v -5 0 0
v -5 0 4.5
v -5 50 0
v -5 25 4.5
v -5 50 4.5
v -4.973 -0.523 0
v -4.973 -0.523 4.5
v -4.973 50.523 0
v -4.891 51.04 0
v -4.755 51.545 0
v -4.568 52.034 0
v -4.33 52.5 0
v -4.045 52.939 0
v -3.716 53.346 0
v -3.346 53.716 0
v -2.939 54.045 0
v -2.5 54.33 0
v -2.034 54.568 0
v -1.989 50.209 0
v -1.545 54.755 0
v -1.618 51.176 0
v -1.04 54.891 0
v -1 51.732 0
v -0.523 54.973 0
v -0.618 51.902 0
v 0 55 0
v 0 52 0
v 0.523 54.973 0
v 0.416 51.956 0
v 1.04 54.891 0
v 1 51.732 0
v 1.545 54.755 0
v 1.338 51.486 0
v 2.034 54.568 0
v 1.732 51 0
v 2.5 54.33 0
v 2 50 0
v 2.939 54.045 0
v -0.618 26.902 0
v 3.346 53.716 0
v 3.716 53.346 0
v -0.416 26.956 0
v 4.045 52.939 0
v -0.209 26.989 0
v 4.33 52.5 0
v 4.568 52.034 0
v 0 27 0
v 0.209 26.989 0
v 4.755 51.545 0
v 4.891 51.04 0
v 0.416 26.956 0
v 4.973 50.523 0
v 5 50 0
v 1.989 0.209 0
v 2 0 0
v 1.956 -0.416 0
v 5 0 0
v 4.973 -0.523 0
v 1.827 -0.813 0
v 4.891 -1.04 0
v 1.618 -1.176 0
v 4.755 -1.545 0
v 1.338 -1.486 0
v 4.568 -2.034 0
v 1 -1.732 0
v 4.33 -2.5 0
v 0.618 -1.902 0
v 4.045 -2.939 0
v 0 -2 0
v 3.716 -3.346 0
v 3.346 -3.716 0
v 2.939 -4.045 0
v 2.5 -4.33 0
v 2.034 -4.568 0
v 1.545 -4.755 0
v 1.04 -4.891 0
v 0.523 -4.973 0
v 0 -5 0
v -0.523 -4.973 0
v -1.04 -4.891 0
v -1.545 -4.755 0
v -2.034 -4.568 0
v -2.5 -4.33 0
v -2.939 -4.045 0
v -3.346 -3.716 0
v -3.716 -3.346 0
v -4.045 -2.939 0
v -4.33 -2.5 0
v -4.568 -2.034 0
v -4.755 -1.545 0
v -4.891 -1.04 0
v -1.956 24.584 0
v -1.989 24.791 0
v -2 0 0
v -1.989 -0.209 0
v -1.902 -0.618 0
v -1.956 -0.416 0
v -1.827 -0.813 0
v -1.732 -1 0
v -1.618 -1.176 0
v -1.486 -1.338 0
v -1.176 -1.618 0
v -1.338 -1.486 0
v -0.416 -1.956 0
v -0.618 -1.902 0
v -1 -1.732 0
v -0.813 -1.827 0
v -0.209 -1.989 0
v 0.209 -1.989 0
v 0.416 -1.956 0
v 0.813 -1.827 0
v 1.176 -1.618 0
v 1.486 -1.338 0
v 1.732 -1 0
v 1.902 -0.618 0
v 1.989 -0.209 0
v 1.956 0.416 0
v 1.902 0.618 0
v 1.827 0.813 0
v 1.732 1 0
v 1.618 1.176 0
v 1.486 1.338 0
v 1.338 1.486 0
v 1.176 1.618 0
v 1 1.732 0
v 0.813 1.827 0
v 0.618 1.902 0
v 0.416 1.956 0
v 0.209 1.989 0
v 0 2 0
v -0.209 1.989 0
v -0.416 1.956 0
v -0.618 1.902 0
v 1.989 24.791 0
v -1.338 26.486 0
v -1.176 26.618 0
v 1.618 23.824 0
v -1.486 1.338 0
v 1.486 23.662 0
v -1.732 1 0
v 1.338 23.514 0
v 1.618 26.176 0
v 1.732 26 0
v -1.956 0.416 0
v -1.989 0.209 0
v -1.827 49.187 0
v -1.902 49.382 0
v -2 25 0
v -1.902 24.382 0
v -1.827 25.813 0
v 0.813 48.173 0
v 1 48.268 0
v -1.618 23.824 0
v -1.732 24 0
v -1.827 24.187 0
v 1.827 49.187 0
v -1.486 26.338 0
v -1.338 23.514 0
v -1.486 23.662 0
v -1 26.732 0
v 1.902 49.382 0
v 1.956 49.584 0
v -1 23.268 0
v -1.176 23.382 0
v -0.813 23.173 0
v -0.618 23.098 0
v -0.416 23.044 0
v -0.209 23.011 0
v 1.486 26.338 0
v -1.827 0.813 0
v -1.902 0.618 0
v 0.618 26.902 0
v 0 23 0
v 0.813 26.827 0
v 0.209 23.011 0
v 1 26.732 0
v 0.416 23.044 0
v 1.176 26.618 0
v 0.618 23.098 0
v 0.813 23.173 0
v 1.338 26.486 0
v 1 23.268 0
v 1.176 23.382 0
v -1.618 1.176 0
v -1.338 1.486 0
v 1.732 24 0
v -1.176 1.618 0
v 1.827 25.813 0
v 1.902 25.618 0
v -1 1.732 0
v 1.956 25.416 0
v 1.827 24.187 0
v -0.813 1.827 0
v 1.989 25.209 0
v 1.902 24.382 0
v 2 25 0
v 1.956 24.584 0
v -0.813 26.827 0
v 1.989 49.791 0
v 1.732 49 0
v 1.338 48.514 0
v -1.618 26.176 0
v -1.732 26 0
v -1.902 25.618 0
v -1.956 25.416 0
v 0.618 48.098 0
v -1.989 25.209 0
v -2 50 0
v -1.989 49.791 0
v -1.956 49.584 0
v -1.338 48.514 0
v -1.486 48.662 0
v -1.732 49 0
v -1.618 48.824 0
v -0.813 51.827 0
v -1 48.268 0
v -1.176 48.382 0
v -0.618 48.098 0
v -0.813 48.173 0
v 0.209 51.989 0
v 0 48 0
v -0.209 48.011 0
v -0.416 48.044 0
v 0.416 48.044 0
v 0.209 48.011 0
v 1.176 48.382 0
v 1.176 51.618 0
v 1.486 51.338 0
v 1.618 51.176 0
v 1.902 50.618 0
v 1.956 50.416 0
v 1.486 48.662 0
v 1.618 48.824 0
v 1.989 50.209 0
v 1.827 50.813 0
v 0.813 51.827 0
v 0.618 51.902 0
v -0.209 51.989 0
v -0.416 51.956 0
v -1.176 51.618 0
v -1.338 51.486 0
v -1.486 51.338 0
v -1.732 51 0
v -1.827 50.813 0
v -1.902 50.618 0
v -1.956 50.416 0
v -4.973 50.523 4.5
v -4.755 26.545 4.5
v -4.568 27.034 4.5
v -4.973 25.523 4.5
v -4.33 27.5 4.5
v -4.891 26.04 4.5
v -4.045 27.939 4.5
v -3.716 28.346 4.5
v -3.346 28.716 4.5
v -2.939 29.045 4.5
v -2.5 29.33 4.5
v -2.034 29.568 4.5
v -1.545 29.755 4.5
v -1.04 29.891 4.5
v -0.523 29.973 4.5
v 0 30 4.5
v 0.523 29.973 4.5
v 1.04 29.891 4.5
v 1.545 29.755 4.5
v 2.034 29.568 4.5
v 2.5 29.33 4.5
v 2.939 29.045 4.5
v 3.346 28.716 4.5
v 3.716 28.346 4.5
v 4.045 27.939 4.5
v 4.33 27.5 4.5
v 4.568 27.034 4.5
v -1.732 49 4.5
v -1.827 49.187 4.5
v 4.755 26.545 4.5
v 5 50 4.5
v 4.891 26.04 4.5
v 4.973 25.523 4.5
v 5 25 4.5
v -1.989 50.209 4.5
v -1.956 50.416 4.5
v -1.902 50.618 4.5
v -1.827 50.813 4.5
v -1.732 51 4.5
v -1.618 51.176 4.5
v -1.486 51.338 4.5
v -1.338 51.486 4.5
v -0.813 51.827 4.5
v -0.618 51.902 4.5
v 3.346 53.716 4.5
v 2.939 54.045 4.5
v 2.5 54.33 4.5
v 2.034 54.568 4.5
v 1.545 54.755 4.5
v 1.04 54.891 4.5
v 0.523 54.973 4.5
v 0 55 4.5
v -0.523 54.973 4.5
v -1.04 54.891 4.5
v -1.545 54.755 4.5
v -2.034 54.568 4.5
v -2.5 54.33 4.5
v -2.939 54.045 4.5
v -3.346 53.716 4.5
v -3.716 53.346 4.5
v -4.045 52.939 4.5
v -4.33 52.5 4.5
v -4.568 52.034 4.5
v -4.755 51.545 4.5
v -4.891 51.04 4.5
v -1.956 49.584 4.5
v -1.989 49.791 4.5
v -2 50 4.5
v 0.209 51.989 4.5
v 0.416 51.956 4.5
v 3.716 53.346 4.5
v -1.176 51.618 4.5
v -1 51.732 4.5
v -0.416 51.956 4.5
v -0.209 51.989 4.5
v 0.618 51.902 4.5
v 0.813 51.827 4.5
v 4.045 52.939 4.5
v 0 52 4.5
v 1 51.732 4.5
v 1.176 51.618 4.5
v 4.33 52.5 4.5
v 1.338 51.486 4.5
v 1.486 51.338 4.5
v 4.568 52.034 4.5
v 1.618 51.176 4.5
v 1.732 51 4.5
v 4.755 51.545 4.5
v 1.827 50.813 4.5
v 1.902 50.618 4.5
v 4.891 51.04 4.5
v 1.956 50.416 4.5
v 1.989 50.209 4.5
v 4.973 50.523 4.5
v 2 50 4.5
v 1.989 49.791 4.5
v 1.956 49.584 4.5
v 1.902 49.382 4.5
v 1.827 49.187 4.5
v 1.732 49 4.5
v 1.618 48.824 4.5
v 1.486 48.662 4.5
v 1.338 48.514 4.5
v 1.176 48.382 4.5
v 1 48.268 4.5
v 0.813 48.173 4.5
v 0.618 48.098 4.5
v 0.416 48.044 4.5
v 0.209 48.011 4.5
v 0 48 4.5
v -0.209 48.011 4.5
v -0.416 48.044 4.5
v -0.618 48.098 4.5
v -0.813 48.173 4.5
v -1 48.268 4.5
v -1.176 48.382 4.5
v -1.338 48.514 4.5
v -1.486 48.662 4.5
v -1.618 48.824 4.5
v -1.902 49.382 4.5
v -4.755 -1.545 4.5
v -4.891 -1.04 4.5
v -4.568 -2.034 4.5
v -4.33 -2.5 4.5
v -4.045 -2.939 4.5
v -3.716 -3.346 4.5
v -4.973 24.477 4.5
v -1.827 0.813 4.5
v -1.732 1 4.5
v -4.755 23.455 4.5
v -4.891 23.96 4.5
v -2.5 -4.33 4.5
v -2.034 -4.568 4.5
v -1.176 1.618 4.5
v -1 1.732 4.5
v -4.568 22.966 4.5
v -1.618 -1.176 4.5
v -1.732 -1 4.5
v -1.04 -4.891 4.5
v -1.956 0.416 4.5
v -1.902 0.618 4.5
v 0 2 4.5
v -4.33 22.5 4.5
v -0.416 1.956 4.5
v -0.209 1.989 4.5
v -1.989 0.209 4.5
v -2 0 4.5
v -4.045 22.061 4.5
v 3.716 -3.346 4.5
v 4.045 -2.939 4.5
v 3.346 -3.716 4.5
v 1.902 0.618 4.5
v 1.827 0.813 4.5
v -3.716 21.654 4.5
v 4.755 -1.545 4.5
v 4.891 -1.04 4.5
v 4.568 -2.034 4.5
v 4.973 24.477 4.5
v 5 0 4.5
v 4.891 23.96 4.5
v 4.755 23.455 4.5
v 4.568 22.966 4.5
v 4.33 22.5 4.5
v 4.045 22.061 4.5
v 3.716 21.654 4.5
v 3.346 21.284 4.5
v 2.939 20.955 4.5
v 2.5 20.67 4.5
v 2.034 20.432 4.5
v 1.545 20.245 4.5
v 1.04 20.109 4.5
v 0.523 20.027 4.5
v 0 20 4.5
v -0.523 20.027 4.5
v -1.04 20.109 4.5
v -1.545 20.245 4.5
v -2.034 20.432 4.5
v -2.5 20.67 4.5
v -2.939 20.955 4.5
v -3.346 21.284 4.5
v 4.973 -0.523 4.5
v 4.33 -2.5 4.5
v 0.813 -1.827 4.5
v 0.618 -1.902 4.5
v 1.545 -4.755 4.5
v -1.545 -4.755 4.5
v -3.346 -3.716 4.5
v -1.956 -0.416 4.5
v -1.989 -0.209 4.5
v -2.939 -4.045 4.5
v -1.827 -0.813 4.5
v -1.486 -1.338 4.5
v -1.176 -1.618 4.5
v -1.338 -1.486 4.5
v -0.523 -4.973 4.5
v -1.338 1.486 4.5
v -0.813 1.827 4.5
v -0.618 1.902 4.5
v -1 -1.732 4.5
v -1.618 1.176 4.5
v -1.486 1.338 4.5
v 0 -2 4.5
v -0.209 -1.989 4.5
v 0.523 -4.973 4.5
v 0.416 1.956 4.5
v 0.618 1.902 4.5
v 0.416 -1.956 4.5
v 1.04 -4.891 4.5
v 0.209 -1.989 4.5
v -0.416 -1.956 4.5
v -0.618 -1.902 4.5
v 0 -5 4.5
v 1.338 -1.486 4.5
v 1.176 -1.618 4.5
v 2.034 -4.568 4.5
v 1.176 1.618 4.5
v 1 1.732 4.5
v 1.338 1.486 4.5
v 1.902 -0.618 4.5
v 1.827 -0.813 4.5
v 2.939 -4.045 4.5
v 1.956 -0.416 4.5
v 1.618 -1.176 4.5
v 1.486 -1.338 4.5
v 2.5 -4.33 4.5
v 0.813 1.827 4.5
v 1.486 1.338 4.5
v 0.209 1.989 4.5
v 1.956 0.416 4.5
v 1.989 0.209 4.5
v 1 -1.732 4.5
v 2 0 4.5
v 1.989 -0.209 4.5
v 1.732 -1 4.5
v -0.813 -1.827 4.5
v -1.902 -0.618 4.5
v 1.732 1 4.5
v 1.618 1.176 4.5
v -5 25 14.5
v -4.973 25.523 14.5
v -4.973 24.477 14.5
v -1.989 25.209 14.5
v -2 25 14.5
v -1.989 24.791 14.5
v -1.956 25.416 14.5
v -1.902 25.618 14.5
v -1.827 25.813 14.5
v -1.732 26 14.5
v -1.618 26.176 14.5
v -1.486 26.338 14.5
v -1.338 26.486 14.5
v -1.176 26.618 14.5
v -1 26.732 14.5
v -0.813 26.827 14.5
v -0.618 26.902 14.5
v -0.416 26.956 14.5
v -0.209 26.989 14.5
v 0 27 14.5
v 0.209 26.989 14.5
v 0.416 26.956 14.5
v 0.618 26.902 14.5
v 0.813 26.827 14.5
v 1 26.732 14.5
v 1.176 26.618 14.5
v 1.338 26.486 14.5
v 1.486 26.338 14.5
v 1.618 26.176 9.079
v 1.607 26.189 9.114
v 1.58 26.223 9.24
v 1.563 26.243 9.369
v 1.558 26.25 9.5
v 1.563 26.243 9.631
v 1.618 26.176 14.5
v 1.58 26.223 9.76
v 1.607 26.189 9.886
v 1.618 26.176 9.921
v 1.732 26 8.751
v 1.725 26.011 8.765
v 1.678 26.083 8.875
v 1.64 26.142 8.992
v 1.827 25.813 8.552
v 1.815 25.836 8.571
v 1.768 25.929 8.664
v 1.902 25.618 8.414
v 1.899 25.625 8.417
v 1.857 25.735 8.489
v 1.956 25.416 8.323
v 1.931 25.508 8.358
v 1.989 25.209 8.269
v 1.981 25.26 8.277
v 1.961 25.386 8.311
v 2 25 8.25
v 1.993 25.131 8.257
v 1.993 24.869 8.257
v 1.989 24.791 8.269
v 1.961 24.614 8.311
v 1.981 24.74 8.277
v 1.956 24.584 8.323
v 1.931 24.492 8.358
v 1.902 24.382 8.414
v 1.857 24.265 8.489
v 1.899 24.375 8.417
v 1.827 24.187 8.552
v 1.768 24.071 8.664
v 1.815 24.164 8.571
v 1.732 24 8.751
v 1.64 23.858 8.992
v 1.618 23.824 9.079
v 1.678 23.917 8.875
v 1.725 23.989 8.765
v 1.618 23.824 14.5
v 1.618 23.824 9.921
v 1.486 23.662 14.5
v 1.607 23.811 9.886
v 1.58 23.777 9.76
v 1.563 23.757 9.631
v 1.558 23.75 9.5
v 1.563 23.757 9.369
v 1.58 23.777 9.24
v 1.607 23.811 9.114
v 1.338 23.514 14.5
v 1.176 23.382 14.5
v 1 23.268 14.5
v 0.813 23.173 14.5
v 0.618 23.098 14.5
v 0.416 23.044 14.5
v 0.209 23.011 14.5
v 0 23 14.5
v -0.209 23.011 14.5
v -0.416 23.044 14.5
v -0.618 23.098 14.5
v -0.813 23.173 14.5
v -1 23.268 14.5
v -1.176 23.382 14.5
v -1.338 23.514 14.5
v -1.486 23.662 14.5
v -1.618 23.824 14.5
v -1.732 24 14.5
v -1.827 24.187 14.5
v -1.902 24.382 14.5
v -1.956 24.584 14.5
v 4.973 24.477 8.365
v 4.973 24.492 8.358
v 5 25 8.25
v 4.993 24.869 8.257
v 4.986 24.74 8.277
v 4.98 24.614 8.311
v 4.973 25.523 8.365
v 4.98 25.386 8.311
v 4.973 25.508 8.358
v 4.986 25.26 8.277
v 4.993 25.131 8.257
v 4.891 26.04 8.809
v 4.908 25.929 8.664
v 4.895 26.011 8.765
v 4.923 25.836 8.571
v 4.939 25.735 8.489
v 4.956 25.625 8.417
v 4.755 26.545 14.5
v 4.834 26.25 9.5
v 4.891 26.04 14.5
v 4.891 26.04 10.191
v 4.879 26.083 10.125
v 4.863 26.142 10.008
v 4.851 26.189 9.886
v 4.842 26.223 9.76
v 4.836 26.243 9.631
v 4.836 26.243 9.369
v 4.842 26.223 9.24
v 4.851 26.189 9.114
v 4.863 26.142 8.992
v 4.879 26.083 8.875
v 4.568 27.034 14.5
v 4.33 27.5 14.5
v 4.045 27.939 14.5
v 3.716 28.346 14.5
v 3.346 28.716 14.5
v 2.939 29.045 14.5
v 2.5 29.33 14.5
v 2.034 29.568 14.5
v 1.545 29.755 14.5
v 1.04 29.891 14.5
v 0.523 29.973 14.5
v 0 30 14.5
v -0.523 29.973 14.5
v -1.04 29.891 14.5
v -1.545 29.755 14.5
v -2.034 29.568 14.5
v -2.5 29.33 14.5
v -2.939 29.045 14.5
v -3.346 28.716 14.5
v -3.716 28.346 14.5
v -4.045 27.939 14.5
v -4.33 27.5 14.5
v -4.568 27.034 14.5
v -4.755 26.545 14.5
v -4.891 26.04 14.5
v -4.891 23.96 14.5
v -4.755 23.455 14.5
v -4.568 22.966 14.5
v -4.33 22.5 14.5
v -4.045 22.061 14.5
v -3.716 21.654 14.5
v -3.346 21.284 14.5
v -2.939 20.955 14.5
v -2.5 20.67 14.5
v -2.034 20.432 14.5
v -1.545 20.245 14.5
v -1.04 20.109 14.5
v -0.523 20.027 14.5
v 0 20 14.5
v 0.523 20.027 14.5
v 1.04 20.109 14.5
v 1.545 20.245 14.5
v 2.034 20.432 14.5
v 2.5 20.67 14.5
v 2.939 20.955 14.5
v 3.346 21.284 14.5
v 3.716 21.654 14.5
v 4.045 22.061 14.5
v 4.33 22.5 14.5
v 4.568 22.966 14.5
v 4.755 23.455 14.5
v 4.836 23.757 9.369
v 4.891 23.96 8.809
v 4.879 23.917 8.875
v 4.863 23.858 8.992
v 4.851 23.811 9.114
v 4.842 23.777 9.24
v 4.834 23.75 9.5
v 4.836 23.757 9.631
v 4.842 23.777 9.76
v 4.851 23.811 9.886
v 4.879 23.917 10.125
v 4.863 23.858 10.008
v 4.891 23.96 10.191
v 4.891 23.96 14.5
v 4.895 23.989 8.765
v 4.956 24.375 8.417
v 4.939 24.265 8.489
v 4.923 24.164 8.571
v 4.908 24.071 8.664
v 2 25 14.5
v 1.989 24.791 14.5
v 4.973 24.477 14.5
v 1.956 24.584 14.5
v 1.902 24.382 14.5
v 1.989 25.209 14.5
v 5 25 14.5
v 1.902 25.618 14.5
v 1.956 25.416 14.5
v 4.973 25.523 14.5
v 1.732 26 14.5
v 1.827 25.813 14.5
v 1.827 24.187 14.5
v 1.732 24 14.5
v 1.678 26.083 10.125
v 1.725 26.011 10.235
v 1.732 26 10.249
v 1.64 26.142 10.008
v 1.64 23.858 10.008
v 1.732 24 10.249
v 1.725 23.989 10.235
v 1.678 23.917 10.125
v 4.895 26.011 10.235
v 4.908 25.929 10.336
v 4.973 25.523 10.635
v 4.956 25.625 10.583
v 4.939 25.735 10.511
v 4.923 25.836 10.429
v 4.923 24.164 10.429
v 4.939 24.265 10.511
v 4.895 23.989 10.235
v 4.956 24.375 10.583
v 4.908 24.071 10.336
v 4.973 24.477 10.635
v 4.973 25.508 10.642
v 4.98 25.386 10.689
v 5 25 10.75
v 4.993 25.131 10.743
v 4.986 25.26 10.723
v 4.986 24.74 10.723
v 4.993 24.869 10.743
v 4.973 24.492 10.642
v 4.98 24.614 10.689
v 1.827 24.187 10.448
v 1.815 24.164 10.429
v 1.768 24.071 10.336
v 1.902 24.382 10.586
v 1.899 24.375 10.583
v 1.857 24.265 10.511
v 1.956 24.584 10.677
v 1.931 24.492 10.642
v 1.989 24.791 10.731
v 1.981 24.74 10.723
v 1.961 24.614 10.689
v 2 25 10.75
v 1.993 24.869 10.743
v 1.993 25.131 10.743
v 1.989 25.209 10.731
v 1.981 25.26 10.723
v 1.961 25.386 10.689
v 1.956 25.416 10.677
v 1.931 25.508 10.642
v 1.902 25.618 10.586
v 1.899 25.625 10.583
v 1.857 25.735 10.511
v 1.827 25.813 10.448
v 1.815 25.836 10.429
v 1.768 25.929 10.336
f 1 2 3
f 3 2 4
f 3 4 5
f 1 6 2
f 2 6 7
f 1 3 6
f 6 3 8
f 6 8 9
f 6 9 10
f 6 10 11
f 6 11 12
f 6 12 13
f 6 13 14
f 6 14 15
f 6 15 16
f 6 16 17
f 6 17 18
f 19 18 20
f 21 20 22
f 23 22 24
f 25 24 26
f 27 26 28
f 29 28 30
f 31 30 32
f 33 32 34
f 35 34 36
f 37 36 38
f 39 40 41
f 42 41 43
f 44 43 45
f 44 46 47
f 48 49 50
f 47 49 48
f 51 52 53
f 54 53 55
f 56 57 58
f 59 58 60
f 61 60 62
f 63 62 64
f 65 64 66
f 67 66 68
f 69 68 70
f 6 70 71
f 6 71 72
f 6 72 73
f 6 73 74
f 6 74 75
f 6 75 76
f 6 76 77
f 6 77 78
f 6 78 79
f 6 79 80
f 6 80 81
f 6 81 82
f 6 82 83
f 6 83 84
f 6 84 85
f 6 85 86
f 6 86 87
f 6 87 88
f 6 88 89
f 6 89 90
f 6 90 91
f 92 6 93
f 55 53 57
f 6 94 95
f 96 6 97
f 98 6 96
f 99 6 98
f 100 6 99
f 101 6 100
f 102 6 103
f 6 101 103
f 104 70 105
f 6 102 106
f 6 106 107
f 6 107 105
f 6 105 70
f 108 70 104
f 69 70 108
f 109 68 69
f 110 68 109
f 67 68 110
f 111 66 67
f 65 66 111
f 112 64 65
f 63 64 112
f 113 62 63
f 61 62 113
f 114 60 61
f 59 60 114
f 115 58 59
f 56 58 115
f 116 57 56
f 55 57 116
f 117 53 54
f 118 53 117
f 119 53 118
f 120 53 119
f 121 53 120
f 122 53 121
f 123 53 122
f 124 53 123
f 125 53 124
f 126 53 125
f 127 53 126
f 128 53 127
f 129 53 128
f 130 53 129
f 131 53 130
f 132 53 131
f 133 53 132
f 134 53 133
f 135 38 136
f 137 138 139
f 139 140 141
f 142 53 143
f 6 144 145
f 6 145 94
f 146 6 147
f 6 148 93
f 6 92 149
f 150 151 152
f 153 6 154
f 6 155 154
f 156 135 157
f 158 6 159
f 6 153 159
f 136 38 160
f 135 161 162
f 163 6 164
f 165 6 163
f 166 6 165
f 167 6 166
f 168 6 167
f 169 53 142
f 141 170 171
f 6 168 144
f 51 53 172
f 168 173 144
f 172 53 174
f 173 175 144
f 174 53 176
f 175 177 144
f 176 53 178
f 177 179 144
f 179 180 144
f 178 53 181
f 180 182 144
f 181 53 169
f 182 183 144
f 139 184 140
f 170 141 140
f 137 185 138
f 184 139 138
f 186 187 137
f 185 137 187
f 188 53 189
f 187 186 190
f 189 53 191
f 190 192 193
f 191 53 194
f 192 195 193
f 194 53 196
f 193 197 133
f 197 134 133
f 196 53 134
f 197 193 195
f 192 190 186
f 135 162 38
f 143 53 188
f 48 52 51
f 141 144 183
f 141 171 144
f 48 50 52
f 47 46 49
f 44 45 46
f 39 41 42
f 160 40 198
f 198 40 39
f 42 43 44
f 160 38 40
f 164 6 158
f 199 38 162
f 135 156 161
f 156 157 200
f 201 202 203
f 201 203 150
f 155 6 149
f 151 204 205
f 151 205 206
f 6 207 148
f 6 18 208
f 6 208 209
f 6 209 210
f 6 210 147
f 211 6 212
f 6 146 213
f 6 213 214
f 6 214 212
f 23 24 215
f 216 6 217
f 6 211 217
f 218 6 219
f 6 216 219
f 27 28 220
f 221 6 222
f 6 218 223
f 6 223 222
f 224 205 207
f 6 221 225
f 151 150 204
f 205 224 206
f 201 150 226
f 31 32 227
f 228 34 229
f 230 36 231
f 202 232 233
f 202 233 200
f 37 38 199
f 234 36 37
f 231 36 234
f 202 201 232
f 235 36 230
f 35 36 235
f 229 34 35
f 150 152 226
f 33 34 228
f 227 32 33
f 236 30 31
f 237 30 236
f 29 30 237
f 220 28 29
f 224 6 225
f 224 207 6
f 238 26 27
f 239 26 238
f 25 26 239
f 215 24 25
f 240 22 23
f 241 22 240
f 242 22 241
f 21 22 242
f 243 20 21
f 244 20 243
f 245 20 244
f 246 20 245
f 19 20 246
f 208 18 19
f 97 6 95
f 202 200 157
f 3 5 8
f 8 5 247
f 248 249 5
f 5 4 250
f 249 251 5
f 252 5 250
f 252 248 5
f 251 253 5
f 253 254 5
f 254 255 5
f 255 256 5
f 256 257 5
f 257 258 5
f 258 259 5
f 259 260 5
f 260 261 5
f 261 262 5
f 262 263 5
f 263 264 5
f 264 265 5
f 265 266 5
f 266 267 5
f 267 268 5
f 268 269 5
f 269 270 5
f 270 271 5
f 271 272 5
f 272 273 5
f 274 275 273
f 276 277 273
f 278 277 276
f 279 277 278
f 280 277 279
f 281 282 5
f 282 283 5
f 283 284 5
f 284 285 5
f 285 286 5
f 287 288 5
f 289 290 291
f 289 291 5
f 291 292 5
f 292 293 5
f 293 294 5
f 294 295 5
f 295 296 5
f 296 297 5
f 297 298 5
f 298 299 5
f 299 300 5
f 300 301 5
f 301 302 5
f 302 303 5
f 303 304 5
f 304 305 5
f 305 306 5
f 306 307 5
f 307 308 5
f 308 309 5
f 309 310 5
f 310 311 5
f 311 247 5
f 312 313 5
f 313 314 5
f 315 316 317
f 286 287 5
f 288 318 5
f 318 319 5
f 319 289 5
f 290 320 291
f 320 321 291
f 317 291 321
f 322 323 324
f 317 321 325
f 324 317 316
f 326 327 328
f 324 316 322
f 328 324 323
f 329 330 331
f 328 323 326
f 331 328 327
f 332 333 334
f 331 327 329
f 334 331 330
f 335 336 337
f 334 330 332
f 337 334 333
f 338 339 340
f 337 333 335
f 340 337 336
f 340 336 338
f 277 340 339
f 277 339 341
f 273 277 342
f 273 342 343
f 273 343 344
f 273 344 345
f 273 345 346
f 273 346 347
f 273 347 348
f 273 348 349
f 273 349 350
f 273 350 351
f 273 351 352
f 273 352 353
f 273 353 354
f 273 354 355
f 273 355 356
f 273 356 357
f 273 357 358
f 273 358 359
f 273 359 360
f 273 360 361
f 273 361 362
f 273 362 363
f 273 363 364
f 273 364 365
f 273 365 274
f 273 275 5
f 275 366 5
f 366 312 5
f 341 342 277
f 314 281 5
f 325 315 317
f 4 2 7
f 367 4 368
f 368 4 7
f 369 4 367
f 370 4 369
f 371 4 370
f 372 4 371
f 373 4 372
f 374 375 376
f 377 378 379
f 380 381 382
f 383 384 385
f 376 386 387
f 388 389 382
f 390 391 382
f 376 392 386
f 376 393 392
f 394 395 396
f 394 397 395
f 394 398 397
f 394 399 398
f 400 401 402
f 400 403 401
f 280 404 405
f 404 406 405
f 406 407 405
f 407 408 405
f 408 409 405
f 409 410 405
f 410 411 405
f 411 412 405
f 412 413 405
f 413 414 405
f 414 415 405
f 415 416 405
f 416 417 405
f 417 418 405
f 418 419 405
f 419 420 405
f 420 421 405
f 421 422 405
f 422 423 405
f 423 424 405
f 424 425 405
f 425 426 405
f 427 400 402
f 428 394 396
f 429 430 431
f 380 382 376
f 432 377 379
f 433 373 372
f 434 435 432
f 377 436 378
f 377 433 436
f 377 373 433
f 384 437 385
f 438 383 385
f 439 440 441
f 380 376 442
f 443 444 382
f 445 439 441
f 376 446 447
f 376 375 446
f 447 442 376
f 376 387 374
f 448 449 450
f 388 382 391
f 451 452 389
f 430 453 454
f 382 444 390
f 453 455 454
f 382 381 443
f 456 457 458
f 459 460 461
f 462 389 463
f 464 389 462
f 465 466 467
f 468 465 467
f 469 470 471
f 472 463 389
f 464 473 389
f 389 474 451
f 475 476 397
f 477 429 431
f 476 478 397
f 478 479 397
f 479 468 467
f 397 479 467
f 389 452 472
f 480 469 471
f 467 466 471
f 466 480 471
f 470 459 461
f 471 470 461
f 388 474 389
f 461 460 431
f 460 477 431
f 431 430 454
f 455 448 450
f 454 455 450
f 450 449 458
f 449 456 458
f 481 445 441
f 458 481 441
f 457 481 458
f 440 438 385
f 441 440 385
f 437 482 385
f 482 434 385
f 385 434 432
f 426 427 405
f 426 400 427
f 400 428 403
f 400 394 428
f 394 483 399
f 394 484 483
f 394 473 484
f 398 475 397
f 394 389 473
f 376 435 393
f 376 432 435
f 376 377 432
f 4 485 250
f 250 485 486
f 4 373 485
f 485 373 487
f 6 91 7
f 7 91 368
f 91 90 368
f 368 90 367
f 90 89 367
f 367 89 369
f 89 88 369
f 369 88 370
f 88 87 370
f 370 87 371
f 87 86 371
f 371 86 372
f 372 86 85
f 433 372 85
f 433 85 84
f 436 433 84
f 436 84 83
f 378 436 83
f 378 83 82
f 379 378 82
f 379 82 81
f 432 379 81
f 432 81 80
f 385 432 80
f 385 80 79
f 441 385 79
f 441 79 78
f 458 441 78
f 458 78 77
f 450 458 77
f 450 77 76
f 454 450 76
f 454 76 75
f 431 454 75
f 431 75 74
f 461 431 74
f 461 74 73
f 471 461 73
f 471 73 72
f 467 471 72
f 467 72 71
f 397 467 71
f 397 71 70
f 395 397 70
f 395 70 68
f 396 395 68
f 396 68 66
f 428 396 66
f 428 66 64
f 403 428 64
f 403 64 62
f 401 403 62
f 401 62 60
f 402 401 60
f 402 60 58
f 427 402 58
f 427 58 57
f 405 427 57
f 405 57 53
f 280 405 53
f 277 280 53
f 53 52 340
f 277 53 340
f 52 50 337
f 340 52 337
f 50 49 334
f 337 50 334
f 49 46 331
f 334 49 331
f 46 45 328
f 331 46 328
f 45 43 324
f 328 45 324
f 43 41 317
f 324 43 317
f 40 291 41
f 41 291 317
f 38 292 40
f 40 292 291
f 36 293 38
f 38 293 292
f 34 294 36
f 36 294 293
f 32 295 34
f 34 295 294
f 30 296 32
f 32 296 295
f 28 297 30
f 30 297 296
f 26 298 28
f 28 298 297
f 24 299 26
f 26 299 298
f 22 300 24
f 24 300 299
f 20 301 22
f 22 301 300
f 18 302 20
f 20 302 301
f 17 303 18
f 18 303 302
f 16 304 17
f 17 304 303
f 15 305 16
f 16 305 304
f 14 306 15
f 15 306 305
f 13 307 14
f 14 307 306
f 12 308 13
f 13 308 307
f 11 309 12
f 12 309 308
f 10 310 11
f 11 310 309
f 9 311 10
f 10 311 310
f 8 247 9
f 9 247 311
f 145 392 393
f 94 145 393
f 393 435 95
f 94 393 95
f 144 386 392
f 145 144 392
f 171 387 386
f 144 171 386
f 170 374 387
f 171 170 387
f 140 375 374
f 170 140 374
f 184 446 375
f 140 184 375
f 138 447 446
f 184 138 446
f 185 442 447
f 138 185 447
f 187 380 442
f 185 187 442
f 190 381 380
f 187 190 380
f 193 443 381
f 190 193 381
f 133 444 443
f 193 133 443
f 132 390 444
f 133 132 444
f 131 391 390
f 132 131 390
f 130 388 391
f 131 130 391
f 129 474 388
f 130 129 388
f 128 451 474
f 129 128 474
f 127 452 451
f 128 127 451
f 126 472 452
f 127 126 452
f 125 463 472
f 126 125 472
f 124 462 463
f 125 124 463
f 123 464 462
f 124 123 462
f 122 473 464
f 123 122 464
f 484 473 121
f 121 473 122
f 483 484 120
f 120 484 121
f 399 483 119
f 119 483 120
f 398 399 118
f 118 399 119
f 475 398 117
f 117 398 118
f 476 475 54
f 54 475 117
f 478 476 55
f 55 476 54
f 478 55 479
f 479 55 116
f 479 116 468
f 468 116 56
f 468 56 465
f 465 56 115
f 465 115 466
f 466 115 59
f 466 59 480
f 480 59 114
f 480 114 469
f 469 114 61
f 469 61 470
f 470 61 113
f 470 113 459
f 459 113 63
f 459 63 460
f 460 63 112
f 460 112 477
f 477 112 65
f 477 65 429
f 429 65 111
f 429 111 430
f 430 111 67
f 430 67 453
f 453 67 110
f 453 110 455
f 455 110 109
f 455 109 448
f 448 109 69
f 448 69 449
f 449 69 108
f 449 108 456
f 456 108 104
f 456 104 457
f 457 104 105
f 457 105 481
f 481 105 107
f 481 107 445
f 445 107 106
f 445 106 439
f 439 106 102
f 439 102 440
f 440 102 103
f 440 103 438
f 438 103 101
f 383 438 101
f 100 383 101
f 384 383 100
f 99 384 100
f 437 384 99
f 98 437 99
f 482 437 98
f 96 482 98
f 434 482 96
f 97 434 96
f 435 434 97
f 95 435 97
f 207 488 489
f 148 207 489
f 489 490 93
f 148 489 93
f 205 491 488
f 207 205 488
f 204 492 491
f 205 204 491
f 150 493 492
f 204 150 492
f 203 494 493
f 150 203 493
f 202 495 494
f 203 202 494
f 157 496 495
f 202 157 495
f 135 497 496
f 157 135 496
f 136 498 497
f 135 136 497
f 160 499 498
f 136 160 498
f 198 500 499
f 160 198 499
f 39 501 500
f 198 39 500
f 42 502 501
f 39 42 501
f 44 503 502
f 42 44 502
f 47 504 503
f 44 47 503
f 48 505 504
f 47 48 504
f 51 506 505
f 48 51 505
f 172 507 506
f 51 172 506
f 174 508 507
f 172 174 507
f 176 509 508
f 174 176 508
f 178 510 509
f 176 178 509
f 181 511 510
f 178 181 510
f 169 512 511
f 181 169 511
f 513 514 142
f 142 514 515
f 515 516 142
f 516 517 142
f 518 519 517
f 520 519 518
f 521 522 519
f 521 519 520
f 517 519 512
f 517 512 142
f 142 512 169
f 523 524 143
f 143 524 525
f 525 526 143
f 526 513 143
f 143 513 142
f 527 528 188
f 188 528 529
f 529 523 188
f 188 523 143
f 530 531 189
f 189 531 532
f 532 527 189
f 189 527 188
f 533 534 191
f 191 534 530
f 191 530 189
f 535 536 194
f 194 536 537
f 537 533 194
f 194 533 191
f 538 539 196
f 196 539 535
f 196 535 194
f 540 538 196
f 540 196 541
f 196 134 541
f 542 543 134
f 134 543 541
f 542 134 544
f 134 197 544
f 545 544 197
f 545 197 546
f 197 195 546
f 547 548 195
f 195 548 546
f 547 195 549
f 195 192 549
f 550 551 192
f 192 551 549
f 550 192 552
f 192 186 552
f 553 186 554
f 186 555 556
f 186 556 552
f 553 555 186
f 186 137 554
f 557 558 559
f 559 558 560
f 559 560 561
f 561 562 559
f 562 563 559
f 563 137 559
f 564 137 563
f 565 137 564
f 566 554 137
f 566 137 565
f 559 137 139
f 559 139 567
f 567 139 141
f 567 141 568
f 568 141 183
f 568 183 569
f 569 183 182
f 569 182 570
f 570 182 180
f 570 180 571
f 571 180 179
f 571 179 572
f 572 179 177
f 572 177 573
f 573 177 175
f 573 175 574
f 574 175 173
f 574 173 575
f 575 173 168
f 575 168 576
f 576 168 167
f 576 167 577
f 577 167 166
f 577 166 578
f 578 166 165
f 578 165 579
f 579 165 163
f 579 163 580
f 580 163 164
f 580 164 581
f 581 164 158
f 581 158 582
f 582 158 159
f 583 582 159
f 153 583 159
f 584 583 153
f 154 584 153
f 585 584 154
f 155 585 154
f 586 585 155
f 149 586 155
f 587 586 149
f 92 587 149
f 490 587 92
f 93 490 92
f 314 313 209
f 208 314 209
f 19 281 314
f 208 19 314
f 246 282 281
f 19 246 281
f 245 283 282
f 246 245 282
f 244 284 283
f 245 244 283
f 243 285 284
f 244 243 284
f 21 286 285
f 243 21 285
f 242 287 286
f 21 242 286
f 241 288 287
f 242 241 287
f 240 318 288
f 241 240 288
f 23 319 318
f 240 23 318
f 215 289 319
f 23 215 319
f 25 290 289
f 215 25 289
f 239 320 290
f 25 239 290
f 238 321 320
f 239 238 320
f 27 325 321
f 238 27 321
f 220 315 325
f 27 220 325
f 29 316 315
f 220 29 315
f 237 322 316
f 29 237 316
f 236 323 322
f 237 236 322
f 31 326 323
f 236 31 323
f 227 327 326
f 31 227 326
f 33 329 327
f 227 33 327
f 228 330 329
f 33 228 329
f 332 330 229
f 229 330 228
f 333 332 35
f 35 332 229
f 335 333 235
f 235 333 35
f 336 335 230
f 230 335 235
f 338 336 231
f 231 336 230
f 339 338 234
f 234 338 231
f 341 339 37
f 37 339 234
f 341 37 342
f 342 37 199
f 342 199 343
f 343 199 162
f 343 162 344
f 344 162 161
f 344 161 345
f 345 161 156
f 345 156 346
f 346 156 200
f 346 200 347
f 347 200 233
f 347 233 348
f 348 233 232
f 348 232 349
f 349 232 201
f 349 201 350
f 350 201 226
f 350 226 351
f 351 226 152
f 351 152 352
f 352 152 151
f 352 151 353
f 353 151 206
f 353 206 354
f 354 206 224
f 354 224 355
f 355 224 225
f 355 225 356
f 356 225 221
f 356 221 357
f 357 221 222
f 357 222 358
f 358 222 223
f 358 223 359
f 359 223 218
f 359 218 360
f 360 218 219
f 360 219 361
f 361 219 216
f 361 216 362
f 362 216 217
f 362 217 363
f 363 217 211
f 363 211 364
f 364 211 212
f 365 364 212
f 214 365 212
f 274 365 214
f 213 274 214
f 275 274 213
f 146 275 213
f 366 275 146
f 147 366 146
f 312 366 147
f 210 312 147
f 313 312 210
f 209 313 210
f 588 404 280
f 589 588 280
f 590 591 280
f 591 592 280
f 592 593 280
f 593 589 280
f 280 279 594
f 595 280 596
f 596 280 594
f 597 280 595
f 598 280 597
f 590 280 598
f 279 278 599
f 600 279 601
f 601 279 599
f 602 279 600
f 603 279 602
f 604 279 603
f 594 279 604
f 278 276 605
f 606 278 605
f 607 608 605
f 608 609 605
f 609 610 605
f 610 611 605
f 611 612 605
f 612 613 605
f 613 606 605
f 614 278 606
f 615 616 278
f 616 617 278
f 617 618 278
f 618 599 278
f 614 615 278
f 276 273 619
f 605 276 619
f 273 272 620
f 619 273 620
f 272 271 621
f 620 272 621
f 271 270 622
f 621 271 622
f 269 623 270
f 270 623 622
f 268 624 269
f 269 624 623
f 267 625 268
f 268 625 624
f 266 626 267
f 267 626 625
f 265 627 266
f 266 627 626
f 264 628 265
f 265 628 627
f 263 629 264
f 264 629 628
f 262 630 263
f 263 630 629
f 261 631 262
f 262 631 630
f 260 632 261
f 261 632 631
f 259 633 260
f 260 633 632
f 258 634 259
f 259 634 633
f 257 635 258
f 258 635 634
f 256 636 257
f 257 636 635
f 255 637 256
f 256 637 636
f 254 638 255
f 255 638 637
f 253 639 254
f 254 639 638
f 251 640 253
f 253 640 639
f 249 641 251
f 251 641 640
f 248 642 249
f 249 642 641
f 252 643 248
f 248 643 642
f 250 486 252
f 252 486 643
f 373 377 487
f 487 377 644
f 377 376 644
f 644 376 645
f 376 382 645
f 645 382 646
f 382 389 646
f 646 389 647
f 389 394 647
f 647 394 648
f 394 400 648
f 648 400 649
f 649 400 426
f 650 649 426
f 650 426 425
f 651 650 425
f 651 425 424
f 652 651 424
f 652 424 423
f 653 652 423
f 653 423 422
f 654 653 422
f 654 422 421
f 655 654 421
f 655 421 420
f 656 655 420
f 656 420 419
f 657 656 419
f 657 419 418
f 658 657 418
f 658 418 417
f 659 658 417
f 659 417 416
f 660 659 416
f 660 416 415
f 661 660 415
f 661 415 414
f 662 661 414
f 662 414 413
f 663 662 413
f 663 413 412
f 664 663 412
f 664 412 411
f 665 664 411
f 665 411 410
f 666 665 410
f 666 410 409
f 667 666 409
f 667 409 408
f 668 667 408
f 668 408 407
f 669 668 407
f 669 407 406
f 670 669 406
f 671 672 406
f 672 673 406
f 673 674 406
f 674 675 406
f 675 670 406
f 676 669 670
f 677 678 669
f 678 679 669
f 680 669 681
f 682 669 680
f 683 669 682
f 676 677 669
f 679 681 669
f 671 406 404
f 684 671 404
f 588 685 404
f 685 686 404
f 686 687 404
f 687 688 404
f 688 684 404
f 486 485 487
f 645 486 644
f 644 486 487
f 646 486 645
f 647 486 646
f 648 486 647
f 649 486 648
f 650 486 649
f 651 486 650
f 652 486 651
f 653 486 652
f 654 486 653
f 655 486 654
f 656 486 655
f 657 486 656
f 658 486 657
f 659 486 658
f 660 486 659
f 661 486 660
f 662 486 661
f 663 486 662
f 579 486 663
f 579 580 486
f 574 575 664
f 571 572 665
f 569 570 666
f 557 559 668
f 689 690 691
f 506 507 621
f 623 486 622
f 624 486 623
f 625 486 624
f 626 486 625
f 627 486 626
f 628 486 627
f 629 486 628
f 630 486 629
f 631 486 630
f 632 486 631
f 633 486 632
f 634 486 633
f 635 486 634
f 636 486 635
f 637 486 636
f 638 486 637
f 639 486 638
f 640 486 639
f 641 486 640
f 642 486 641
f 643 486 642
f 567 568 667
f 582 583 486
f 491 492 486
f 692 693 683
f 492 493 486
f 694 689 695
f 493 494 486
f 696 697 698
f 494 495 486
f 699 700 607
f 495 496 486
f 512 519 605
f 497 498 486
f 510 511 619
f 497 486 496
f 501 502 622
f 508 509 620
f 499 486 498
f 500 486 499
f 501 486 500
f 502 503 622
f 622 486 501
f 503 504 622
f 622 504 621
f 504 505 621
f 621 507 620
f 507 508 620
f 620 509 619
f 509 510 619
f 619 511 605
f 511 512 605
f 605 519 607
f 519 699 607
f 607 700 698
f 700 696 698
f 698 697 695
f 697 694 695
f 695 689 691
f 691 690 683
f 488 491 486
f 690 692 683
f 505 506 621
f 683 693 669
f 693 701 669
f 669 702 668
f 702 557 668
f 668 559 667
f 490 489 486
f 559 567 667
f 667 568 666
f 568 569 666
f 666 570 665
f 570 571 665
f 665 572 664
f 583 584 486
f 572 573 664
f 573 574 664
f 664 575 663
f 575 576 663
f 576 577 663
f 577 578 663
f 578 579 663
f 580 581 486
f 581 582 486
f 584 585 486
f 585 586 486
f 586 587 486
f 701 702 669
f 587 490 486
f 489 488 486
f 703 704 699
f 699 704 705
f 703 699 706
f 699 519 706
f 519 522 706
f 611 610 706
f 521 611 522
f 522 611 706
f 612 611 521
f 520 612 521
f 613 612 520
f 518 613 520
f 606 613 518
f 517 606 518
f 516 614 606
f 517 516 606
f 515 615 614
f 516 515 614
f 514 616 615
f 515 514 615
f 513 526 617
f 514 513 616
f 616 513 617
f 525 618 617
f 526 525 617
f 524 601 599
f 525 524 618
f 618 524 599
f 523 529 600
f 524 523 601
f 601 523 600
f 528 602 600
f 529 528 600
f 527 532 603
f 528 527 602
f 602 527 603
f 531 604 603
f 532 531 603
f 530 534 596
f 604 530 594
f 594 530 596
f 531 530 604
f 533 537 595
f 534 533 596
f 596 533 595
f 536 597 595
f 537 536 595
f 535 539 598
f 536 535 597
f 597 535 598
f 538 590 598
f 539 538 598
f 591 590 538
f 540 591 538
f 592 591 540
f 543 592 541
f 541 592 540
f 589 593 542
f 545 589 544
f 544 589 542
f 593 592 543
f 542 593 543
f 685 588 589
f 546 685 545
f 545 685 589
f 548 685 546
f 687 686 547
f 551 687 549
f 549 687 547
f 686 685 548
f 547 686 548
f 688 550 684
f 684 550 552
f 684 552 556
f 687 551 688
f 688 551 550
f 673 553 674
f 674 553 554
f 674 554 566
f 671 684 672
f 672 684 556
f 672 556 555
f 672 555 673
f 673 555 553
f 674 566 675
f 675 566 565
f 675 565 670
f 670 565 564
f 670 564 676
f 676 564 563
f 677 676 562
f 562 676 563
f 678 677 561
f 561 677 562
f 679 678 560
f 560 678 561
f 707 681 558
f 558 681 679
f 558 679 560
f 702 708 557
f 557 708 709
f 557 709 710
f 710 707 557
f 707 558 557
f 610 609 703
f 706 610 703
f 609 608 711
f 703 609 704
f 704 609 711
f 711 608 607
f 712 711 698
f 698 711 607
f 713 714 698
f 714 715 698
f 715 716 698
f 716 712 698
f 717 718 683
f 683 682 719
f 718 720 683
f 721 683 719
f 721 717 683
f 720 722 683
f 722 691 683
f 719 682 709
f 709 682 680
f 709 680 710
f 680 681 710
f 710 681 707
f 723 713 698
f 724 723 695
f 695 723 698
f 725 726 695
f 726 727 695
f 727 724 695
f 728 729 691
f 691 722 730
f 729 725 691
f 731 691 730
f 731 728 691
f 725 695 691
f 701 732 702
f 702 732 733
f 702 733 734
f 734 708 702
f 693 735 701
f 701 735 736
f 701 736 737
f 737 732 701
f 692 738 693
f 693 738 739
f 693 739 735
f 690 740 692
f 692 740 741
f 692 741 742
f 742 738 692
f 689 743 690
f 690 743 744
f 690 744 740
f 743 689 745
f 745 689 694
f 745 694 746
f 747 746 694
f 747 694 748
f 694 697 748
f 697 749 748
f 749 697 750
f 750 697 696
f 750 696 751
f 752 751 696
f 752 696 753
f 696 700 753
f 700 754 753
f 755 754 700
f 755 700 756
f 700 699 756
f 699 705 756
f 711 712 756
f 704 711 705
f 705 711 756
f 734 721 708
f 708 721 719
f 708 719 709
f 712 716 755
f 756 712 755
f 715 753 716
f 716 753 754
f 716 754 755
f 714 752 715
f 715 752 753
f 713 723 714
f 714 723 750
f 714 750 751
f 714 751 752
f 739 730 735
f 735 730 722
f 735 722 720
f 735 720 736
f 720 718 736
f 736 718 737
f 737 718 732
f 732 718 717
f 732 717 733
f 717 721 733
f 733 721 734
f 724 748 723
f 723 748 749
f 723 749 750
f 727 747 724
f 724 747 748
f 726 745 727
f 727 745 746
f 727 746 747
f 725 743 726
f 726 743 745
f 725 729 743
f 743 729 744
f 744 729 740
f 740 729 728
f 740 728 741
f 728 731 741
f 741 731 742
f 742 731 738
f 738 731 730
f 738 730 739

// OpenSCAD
// file: ../config.scad
// This is the config for an M8 Mendel sized printer.

//Constants (These are used throughout the whole printer)
frameroddia = 8.5; //the frame rod diameter
smoothroddia = 8.5; //the smooth rod diameter
bushingod = 16; //The prusabushing OD, you can change this to 15 to use LM8UU linear bearings 
bushingheight = 11;
tapsize = 7; //The size of the hole before tapping. 7mm seems to work well.

nemasize = 1.7; //Nema Size (in imperial)
motorcenter = 23; //center hole size for the motor. If your motor center flange is smaller you can beef up parts this way. 
motorshaftdia = 5; // Motor shaft diameter
motorcenterwall = 5;
motorbody = 43;

pulleypitch = 5;
pulleyteeth = 8;
pulleydia = 12; // this will be replaced by the above soon

/* The Mixtape Mendel uses two types of fasteners. One is the "primary" type, which is the larger type that builds the structure,
 which was profiled above as "frameroddia, etc..". In the case of the Mendel, it is M8 threaded rod (Huxley, M6). It also uses "Secondary" hardware. This is a smaller screw used to retain tool heads, attach motors and lock pulleys on shafts. In the case of Mendel this is M3 or M4. M3 is preferred as it is cheaper. Tapping is quite the challenge though. 
*/
nutheight = 7; //Primary
nutdia = 14.8; //Primary
secscrewdia = 4; //secondary 
secscrewtap = 2.5; // secondary

beltthick = 2; //Thickness of the timing belt
beltwidth = 7; // Belt width, used for the y bed clamps so can be a little bugger than actual

mdfthick = 6; //thickness of MDF (You can use other wood, acrylic, lexan, etc)

bearingid = 8; // 608
bearingod = 22; // 608
bearinginnerrace = 12; // the amount of the inner race diameter exposed

tapping = true; //turn tapping on/off, not implemented yet. (Version 0.3 might implement this) Version 0.2 has tapping by default right now
layerheight = 0.32; //skeinforge/slicer layer height, used for the idler wasers right now. 

//Beef/tab/wall
motortabwall = 2.5;

//Frame Vertex
vertexwall = 3;
triangle = 60; // the angle the bottom vertexes have relative to horizontal

//Y Motor Mount
ymountthick = 9;
ywallmulti = 2; //the wall thickness multiplier for the bits that interface with the frame rod

//Y Belt Clamps
clampholewall = 3;
	//(bushingod-pulleydia)/2

//Bar Clamps
barclampwall = 4;

//Top Piece
toppiecethick = 8;
toprodwall = 4;
toprodspacing = 72;
siderodwall = 4;

// X End Pieces
xrodspacing = 50; //rod spacing center to center
nutwall = 3; //wall thickness around nut and bushing
towergap= 10; // 0.75 diameter wrap should be ok i think. Make a flag for full wrap and no square for bushings/linear bearings maybe?
//Motor
motorinterface = 6; //thickness of the motor mount (6 works well, need to decouple from top piece)

//X Carriage 
carriagewidth = 50;
bushingwall = 3;
backwall = 5;
tooldia = 17;
platformthick = 7;
platformextension = 40; 
clampthick = 4; //The two pieces that clamp around the belt

//Z Coupler
couplerwall = 4;
couplerheight = 34; // Make this double 3/4 your shaft length
 
//Extruder (Plastic Pusher)
extruderthick = 5;
bowdencabledia = 4;
bowdenwall = 3;
idlerwall = 2;
pinchwheeldia = 8;

//Mendel Bowden Mount
mountspacing = 50;

//Utility Clamp 
utilityclampwall = 3;

//Groove Mount
	//Default is pretty good for MakerGear insulators
groovedia = 12;
grooveheight = 4.5;

//pen holder 
penwall = 3 ;
shaftheight = 30;
// main file
/*
  Mixtape Mendel - A Fully Parametric RepRap
    Copyright (C) 2011  Steve Kelly

    This program is free software: you can redistribute it and/or modify
    it under the terms of the GNU General Public License as published by
    the Free Software Foundation, either version 3 of the License, or
    (at your option) any later version.

    This program is distributed in the hope that it will be useful,
    but WITHOUT ANY WARRANTY; without even the implied warranty of
    MERCHANTABILITY or FITNESS FOR A PARTICULAR PURPOSE.  See the
    GNU General Public License for more details.

    You should have received a copy of the GNU General Public License
    along with this program.  If not, see <http://www.gnu.org/licenses/>.
*/

include <../config.scad>;
$fn = 60;

difference(){
union(){
translate([0,mountspacing/2,0])cylinder(r=bowdencabledia/2+bowdenwall, h = grooveheight+secscrewdia+bowdenwall*2);
translate([0,0,0])cylinder(r=secscrewdia/2 + penwall,h=grooveheight);
translate([0,mountspacing,0])cylinder(r=secscrewdia/2 + penwall,h=grooveheight);
translate([-secscrewdia/2-penwall,0,0])cube([secscrewdia+penwall*2,mountspacing,grooveheight]);

}
translate([0,mountspacing/2,0])cylinder(r=bowdencabledia/2, h =  grooveheight+secscrewdia+bowdenwall*2);
translate([0,mountspacing/2,grooveheight+secscrewdia/2+bowdenwall])rotate([0,90,0])cylinder(r=secscrewtap/2, h = bowdenwall+bowdencabledia);
translate([0,0,-1])cylinder(r=secscrewdia/2,h=platformthick+2);
translate([0,mountspacing,-1])cylinder(r=secscrewdia/2,h=platformthick+2);
}
